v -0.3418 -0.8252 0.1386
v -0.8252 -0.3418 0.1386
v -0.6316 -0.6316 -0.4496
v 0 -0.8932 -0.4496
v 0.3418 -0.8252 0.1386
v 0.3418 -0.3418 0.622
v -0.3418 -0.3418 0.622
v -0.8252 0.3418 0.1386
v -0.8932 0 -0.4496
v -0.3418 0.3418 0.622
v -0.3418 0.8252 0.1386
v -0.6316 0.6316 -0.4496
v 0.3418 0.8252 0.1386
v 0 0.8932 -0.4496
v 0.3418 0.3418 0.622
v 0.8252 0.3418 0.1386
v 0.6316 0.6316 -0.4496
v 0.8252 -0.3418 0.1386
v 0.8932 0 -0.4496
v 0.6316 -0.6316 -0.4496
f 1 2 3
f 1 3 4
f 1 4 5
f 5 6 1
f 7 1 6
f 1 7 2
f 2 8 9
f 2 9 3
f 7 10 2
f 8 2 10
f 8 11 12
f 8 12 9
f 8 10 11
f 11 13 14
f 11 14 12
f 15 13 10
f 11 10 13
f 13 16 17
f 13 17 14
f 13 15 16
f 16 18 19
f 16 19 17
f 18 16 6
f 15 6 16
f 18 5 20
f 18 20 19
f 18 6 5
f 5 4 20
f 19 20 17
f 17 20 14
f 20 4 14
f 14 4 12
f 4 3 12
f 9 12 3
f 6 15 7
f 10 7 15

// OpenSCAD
polyhedron( points = [[-0.341829477909667, -0.82524936217307, 0.138575531756133], [-0.825249361918508, -0.341829478099117, 0.138575531756133], [-0.825249362184221, 0.341829478233053, 0.138575531756133], [-0.341829478551158, 0.825249362263598, 0.138575531756133], [0.34182947748461, 0.825249362263598, 0.138575531756133], [0.825249361536866, 0.34182947823306, 0.138575531756133], [0.825249361863956, -0.341829478099118, 0.138575531756133], [0.341829478274303, -0.82524936217307, 0.138575531756133], [2.00039065840741e-10, -0.893243472850767, -0.449573239544937], [-0.631618516639536, -0.631618516871695, -0.449573239544937], [-0.89324347238158, 1.97466577932219e-11, -0.449573239592131], [-0.631618516708283, 0.631618516939165, -0.449573239524226], [2.80246570894533e-10, 0.893243472444703, -0.449573239551573], [0.631618517210924, 0.631618516800191, -0.449573239493678], [0.893243472744792, -1.76107926388133e-10, -0.449573239528564], [0.631618517128871, -0.631618517118259, -0.449573239476348], [-0.341829477878972, -0.341829477898881, 0.621995415564739], [0.341829478119742, -0.341829478073285, 0.621995415390337], [0.341829477638448, 0.341829478180658, 0.621995415626127], [-0.341829478310872, 0.341829478155595, 0.621995415626127]], faces = [[0, 1, 9], [0, 9, 8], [0, 8, 7], [0, 7, 17, 16], [0, 16, 1], [1, 2, 10], [1, 10, 9], [1, 16, 19, 2], [2, 3, 11], [2, 11, 10], [2, 19, 3], [3, 4, 12], [3, 12, 11], [3, 19, 18, 4], [4, 5, 13], [4, 13, 12], [4, 18, 5], [5, 6, 14], [5, 14, 13], [5, 18, 17, 6], [6, 7, 15], [6, 15, 14], [6, 17, 7], [7, 8, 15], [8, 9, 10, 11, 12, 13, 14, 15], [16, 17, 18, 19]]);
